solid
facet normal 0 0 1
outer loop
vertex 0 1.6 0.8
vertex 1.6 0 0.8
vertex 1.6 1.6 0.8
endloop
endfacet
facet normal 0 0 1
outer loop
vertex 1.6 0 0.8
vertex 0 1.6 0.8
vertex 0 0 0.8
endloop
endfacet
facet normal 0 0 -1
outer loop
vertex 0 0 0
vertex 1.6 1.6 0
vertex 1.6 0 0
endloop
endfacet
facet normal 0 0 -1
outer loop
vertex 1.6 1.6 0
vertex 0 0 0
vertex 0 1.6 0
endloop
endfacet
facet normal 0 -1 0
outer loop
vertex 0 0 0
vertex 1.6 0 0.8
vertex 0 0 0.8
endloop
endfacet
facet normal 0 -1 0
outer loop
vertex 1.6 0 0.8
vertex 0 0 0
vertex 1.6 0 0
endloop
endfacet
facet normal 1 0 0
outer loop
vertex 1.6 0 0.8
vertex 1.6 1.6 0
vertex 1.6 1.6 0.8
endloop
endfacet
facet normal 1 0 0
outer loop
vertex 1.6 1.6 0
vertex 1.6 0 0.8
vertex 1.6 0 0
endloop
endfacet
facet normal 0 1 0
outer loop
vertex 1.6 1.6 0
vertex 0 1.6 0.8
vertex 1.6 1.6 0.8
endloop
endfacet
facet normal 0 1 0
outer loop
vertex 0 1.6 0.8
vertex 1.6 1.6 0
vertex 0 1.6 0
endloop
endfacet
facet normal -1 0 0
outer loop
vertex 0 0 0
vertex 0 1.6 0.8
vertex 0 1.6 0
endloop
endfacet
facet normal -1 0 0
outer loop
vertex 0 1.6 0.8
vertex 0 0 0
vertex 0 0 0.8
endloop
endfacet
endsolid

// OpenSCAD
/* Warning, this is a very basic generator with a lot of approximation 
input data : [WDFN, K3A, 1.6x1.6x0.8mm, 6, , A, C04-01015A]
generated by com.zoubworld.electronics.cad.model3d.Basic
Date : Sun Feb 15 10:50:49 CET 2026
*/

//body
color("black")
translate([0,0,0])
cube([1.6,1.6,0.8], center=false);
